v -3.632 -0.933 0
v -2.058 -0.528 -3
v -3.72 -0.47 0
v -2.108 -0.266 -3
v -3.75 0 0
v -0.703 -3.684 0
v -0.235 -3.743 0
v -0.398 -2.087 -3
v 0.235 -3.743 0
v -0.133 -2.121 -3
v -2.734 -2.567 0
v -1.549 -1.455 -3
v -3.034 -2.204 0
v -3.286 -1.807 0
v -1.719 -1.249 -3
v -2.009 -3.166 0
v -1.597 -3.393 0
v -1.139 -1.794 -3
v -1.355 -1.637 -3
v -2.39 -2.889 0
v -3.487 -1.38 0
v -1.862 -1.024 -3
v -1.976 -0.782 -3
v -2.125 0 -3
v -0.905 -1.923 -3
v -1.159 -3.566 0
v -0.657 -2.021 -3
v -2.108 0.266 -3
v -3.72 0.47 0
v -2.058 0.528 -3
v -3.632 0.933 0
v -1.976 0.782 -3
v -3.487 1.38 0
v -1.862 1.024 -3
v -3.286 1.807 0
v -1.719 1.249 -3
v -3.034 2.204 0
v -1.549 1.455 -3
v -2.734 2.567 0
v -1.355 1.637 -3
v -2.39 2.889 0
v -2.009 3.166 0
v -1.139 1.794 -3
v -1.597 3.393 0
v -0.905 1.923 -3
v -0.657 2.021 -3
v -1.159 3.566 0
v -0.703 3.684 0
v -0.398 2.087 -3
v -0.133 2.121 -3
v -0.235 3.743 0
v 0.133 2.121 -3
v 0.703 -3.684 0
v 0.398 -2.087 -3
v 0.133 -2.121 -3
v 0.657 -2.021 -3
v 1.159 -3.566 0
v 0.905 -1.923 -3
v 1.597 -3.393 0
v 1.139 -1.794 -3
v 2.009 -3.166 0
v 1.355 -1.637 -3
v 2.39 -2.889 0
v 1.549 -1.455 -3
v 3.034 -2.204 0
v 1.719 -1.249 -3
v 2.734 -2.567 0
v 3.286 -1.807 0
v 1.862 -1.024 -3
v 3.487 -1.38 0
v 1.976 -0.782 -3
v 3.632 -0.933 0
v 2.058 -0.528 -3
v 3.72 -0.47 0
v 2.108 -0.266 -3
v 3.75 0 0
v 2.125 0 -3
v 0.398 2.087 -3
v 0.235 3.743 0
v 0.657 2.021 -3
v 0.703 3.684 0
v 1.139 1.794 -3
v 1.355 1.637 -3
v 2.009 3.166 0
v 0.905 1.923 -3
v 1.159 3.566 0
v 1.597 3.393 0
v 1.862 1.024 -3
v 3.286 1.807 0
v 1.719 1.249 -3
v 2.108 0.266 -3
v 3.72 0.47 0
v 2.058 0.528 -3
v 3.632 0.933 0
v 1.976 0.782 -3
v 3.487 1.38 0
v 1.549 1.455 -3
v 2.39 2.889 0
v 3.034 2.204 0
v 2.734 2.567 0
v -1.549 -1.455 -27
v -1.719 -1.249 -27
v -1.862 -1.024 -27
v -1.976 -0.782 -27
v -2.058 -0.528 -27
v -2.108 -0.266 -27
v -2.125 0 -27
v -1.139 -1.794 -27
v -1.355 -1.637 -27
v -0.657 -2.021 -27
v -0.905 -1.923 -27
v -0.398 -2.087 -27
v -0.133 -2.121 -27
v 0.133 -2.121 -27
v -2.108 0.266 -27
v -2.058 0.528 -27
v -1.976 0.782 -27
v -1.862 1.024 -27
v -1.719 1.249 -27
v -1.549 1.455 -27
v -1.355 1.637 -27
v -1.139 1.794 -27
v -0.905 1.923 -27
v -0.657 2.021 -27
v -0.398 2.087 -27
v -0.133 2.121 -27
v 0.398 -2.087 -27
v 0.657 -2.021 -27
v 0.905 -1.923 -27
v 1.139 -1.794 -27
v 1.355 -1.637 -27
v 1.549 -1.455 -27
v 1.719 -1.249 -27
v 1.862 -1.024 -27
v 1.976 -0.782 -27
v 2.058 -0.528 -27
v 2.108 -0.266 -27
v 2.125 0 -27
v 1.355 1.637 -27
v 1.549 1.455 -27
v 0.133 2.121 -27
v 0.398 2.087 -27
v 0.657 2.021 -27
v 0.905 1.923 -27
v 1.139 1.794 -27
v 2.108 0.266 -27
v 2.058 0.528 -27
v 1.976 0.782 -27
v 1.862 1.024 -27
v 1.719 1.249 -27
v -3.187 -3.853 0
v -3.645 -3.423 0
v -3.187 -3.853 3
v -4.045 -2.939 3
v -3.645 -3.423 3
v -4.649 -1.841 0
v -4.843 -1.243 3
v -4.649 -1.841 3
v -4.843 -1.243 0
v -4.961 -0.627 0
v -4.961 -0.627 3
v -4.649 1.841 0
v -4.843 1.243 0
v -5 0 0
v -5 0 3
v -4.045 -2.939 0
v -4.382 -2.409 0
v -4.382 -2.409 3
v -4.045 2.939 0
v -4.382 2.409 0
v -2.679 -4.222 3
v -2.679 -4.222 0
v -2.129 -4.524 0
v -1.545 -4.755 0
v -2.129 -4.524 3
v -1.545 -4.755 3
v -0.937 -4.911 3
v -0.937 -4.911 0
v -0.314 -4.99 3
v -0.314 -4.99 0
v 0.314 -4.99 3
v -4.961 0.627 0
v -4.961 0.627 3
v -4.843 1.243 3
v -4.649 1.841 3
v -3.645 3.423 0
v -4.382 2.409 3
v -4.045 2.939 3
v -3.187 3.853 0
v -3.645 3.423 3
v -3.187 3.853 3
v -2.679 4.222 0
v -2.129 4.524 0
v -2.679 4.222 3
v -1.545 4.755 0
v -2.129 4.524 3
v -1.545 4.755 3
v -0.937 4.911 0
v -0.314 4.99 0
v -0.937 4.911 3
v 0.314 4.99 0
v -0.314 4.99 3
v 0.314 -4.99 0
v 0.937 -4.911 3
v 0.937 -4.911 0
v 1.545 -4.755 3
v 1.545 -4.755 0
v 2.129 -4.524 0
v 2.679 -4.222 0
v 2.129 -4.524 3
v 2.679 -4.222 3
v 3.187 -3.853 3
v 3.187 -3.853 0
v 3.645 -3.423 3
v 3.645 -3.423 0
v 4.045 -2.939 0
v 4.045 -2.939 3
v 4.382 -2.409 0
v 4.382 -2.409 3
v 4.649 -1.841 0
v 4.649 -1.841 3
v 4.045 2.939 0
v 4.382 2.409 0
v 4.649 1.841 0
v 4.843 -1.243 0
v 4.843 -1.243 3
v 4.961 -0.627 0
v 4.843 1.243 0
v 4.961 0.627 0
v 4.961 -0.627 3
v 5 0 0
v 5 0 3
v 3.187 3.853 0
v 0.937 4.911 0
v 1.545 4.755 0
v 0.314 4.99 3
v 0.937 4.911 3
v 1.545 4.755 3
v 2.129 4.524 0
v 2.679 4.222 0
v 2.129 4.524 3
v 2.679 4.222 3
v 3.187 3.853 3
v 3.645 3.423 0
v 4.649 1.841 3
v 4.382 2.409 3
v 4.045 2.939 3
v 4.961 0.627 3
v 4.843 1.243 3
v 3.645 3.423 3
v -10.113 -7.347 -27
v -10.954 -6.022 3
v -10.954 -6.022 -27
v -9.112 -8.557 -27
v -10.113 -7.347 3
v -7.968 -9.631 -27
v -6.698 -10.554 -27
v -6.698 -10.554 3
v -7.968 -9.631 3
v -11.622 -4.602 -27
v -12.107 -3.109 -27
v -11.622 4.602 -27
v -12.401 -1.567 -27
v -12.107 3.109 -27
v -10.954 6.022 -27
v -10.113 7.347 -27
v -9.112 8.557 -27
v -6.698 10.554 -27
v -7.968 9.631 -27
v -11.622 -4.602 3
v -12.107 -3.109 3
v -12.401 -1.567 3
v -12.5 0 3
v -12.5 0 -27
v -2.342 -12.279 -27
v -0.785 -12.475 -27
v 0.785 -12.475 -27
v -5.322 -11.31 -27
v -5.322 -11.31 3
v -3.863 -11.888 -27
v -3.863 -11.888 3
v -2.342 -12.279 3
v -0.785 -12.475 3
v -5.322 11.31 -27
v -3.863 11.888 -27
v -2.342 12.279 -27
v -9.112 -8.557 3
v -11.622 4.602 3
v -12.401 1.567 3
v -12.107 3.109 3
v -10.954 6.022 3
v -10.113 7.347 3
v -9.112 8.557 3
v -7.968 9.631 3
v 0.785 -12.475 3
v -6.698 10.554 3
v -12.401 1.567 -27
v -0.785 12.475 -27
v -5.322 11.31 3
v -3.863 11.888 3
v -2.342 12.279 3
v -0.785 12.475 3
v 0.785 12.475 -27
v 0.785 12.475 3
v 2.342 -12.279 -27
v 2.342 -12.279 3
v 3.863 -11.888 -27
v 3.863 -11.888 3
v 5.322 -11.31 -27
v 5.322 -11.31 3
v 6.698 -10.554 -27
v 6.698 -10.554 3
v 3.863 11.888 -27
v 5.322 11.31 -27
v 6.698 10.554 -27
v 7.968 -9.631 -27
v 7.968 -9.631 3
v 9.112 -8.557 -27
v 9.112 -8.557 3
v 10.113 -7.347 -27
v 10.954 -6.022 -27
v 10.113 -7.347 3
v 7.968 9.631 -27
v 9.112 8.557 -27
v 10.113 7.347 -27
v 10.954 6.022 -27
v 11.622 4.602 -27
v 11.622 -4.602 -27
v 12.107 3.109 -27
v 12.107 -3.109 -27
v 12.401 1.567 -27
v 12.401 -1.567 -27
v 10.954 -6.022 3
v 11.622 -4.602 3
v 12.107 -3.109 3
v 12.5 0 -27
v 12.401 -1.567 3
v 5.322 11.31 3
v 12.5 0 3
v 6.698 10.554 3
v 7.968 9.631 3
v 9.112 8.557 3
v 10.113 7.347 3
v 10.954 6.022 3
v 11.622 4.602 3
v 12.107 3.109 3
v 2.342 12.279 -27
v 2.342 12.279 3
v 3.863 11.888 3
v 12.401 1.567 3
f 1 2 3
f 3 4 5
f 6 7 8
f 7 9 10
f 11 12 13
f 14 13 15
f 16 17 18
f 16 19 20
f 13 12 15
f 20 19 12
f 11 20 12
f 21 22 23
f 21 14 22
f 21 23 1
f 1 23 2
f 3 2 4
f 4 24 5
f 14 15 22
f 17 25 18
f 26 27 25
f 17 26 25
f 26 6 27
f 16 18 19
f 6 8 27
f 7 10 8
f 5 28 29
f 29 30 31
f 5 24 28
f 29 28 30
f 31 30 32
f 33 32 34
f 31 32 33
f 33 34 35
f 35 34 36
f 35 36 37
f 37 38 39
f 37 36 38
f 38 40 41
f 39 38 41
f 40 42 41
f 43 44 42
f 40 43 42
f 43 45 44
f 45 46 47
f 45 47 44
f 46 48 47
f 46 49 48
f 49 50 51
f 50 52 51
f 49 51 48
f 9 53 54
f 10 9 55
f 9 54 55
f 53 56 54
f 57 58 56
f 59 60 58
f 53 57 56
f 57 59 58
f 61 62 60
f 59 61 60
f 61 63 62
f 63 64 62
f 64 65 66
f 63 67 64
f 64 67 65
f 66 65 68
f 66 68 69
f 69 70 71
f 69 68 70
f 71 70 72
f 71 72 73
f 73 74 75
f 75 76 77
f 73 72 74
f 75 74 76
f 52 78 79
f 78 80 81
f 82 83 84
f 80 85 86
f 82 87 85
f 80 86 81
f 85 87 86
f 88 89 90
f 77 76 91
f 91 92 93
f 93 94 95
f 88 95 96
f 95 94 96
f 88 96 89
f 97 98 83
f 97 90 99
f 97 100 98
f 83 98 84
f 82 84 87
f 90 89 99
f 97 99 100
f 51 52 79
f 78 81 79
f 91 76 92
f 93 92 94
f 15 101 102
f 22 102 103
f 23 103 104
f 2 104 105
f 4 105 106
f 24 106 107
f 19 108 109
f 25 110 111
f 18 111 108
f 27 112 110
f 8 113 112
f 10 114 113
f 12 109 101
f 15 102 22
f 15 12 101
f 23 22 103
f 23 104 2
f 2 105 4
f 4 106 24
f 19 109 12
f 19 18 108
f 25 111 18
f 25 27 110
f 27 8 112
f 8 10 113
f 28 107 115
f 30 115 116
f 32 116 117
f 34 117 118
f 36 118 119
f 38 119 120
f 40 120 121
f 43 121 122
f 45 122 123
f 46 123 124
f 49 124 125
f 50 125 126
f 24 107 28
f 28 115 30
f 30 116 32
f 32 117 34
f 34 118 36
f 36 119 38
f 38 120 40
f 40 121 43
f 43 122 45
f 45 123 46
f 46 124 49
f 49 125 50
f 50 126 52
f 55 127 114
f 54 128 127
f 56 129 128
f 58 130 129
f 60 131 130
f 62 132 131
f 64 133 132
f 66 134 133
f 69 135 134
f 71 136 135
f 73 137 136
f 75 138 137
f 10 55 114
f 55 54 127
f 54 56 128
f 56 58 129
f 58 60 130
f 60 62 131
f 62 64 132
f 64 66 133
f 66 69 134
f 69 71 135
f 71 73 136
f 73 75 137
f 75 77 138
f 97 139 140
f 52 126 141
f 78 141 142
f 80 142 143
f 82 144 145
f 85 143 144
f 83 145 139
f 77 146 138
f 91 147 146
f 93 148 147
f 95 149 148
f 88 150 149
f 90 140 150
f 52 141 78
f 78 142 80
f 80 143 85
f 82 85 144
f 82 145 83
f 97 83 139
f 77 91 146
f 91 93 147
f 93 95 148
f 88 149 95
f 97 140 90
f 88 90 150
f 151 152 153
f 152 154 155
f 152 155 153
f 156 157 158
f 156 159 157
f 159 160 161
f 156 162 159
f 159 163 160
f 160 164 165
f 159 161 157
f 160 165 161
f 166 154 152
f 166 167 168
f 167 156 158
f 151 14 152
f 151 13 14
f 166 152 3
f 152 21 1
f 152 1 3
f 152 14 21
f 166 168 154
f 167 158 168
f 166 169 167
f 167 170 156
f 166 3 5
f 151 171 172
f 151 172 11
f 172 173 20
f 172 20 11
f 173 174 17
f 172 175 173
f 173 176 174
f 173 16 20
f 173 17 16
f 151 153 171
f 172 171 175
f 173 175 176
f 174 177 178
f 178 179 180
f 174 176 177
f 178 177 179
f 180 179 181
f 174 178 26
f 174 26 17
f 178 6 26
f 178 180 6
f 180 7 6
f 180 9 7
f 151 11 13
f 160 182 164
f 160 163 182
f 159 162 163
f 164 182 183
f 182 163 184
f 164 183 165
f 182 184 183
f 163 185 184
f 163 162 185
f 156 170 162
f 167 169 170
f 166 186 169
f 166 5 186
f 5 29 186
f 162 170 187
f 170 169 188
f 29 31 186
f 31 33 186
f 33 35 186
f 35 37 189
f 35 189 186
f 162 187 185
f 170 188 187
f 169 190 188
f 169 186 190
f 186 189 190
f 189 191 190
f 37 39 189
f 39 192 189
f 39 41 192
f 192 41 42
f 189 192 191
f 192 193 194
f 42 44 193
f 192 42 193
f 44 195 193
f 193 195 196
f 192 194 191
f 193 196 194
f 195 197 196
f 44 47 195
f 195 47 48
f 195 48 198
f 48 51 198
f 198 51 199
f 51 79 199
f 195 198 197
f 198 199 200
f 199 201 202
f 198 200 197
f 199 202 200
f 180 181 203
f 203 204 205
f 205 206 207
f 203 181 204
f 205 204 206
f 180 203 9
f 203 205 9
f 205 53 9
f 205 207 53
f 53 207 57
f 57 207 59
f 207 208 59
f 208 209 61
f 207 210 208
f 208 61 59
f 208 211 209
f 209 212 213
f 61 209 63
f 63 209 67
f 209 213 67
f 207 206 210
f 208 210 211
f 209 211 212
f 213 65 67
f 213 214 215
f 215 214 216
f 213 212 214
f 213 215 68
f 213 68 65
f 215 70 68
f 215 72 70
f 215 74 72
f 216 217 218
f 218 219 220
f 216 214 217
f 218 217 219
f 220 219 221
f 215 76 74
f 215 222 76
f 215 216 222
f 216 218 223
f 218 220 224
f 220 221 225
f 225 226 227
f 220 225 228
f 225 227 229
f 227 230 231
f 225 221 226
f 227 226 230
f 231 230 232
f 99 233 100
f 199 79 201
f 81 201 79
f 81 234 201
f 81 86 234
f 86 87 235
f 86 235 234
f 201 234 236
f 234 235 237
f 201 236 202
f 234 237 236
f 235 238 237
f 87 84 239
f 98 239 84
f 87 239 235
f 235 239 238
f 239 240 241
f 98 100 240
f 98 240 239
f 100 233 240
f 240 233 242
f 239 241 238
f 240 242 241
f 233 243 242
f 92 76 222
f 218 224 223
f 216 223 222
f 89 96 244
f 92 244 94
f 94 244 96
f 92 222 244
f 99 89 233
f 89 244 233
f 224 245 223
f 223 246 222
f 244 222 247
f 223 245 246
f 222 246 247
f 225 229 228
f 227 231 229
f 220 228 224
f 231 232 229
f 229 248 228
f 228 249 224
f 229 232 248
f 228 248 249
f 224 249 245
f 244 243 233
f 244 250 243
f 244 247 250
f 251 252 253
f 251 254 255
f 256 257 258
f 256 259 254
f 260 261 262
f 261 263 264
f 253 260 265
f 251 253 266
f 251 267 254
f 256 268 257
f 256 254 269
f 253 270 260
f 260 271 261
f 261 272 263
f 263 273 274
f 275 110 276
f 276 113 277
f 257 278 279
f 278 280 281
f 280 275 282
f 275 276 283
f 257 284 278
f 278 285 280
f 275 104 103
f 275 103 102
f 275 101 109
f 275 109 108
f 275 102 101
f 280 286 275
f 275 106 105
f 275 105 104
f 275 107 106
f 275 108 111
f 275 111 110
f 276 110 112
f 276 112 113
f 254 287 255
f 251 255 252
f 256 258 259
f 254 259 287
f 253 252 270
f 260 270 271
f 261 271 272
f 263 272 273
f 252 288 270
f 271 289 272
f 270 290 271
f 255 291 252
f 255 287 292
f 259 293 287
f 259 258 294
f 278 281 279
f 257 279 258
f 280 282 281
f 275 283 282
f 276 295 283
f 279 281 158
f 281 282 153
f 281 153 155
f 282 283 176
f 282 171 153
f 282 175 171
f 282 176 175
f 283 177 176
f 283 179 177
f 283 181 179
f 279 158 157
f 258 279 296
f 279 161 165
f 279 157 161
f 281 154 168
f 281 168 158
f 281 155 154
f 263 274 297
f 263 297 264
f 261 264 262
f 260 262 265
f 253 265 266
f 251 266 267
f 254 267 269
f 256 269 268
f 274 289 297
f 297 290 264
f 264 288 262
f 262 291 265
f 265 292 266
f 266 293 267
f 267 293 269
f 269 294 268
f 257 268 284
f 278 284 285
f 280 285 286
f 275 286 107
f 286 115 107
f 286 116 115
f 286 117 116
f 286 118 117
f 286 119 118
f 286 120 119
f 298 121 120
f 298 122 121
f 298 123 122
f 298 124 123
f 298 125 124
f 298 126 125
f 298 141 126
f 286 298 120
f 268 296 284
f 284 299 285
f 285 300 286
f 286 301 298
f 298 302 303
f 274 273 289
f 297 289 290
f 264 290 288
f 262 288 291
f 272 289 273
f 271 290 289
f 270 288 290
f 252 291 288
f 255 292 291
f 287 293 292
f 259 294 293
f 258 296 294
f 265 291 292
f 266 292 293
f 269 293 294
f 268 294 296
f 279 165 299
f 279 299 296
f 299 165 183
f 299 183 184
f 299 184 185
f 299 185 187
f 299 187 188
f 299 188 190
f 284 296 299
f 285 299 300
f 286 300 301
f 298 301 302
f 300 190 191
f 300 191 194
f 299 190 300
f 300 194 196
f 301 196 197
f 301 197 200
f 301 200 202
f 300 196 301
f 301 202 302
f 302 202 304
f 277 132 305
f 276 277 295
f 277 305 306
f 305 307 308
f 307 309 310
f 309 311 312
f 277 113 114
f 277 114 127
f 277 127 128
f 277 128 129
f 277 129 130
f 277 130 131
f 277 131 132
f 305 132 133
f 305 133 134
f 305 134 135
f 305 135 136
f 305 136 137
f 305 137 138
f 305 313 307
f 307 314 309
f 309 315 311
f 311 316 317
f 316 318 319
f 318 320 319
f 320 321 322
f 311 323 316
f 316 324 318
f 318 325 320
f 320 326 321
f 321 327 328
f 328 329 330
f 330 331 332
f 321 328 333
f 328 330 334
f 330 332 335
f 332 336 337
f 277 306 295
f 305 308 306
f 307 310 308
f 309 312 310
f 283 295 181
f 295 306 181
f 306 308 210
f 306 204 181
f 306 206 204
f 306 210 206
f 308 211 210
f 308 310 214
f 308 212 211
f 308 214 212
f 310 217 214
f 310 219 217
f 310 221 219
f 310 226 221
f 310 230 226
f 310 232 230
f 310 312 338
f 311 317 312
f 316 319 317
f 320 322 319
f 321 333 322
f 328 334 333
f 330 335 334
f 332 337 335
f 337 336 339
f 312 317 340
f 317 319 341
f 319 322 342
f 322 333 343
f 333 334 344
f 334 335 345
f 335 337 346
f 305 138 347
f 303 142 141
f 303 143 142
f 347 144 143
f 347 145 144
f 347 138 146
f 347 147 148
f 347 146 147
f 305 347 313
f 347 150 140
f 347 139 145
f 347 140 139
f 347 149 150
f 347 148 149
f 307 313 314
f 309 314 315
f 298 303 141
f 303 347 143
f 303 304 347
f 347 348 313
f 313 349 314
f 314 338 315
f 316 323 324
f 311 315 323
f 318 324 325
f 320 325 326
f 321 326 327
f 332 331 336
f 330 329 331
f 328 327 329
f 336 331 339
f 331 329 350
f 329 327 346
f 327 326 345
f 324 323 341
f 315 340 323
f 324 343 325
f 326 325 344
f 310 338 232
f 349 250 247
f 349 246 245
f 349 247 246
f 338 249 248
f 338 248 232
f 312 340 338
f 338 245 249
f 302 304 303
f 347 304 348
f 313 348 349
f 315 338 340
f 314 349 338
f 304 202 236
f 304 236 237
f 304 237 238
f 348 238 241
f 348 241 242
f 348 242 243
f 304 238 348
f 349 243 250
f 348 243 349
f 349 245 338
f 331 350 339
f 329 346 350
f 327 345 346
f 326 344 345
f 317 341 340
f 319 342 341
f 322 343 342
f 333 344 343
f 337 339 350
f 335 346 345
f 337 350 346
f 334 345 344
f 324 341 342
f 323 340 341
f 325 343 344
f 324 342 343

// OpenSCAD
$fn = 50;

difference() {
	union() {
		translate(v = [0, 0, -27.0]) {
			cylinder(h = 30, r = 12.5);
		}
	}
	union() {
		translate(v = [0, 0, 0]) {
			rotate(a = [0, 0, 0]) {
				difference() {
					union() {
						translate(v = [0, 0, -30.0]) {
							cylinder(h = 30, r = 2.0);
						}
						translate(v = [0, 0, -3]) {
							cylinder(h = 3, r1 = 2.125, r2 = 3.75);
						}
						translate(v = [0, 0, -30.0]) {
							cylinder(h = 30, r = 2.125);
						}
						translate(v = [0, 0, -30.0]) {
							cylinder(h = 30, r = 2.0);
						}
					}
					union();
				}
			}
		}
		#cylinder(h = 3, r = 5.0);
	}
}
